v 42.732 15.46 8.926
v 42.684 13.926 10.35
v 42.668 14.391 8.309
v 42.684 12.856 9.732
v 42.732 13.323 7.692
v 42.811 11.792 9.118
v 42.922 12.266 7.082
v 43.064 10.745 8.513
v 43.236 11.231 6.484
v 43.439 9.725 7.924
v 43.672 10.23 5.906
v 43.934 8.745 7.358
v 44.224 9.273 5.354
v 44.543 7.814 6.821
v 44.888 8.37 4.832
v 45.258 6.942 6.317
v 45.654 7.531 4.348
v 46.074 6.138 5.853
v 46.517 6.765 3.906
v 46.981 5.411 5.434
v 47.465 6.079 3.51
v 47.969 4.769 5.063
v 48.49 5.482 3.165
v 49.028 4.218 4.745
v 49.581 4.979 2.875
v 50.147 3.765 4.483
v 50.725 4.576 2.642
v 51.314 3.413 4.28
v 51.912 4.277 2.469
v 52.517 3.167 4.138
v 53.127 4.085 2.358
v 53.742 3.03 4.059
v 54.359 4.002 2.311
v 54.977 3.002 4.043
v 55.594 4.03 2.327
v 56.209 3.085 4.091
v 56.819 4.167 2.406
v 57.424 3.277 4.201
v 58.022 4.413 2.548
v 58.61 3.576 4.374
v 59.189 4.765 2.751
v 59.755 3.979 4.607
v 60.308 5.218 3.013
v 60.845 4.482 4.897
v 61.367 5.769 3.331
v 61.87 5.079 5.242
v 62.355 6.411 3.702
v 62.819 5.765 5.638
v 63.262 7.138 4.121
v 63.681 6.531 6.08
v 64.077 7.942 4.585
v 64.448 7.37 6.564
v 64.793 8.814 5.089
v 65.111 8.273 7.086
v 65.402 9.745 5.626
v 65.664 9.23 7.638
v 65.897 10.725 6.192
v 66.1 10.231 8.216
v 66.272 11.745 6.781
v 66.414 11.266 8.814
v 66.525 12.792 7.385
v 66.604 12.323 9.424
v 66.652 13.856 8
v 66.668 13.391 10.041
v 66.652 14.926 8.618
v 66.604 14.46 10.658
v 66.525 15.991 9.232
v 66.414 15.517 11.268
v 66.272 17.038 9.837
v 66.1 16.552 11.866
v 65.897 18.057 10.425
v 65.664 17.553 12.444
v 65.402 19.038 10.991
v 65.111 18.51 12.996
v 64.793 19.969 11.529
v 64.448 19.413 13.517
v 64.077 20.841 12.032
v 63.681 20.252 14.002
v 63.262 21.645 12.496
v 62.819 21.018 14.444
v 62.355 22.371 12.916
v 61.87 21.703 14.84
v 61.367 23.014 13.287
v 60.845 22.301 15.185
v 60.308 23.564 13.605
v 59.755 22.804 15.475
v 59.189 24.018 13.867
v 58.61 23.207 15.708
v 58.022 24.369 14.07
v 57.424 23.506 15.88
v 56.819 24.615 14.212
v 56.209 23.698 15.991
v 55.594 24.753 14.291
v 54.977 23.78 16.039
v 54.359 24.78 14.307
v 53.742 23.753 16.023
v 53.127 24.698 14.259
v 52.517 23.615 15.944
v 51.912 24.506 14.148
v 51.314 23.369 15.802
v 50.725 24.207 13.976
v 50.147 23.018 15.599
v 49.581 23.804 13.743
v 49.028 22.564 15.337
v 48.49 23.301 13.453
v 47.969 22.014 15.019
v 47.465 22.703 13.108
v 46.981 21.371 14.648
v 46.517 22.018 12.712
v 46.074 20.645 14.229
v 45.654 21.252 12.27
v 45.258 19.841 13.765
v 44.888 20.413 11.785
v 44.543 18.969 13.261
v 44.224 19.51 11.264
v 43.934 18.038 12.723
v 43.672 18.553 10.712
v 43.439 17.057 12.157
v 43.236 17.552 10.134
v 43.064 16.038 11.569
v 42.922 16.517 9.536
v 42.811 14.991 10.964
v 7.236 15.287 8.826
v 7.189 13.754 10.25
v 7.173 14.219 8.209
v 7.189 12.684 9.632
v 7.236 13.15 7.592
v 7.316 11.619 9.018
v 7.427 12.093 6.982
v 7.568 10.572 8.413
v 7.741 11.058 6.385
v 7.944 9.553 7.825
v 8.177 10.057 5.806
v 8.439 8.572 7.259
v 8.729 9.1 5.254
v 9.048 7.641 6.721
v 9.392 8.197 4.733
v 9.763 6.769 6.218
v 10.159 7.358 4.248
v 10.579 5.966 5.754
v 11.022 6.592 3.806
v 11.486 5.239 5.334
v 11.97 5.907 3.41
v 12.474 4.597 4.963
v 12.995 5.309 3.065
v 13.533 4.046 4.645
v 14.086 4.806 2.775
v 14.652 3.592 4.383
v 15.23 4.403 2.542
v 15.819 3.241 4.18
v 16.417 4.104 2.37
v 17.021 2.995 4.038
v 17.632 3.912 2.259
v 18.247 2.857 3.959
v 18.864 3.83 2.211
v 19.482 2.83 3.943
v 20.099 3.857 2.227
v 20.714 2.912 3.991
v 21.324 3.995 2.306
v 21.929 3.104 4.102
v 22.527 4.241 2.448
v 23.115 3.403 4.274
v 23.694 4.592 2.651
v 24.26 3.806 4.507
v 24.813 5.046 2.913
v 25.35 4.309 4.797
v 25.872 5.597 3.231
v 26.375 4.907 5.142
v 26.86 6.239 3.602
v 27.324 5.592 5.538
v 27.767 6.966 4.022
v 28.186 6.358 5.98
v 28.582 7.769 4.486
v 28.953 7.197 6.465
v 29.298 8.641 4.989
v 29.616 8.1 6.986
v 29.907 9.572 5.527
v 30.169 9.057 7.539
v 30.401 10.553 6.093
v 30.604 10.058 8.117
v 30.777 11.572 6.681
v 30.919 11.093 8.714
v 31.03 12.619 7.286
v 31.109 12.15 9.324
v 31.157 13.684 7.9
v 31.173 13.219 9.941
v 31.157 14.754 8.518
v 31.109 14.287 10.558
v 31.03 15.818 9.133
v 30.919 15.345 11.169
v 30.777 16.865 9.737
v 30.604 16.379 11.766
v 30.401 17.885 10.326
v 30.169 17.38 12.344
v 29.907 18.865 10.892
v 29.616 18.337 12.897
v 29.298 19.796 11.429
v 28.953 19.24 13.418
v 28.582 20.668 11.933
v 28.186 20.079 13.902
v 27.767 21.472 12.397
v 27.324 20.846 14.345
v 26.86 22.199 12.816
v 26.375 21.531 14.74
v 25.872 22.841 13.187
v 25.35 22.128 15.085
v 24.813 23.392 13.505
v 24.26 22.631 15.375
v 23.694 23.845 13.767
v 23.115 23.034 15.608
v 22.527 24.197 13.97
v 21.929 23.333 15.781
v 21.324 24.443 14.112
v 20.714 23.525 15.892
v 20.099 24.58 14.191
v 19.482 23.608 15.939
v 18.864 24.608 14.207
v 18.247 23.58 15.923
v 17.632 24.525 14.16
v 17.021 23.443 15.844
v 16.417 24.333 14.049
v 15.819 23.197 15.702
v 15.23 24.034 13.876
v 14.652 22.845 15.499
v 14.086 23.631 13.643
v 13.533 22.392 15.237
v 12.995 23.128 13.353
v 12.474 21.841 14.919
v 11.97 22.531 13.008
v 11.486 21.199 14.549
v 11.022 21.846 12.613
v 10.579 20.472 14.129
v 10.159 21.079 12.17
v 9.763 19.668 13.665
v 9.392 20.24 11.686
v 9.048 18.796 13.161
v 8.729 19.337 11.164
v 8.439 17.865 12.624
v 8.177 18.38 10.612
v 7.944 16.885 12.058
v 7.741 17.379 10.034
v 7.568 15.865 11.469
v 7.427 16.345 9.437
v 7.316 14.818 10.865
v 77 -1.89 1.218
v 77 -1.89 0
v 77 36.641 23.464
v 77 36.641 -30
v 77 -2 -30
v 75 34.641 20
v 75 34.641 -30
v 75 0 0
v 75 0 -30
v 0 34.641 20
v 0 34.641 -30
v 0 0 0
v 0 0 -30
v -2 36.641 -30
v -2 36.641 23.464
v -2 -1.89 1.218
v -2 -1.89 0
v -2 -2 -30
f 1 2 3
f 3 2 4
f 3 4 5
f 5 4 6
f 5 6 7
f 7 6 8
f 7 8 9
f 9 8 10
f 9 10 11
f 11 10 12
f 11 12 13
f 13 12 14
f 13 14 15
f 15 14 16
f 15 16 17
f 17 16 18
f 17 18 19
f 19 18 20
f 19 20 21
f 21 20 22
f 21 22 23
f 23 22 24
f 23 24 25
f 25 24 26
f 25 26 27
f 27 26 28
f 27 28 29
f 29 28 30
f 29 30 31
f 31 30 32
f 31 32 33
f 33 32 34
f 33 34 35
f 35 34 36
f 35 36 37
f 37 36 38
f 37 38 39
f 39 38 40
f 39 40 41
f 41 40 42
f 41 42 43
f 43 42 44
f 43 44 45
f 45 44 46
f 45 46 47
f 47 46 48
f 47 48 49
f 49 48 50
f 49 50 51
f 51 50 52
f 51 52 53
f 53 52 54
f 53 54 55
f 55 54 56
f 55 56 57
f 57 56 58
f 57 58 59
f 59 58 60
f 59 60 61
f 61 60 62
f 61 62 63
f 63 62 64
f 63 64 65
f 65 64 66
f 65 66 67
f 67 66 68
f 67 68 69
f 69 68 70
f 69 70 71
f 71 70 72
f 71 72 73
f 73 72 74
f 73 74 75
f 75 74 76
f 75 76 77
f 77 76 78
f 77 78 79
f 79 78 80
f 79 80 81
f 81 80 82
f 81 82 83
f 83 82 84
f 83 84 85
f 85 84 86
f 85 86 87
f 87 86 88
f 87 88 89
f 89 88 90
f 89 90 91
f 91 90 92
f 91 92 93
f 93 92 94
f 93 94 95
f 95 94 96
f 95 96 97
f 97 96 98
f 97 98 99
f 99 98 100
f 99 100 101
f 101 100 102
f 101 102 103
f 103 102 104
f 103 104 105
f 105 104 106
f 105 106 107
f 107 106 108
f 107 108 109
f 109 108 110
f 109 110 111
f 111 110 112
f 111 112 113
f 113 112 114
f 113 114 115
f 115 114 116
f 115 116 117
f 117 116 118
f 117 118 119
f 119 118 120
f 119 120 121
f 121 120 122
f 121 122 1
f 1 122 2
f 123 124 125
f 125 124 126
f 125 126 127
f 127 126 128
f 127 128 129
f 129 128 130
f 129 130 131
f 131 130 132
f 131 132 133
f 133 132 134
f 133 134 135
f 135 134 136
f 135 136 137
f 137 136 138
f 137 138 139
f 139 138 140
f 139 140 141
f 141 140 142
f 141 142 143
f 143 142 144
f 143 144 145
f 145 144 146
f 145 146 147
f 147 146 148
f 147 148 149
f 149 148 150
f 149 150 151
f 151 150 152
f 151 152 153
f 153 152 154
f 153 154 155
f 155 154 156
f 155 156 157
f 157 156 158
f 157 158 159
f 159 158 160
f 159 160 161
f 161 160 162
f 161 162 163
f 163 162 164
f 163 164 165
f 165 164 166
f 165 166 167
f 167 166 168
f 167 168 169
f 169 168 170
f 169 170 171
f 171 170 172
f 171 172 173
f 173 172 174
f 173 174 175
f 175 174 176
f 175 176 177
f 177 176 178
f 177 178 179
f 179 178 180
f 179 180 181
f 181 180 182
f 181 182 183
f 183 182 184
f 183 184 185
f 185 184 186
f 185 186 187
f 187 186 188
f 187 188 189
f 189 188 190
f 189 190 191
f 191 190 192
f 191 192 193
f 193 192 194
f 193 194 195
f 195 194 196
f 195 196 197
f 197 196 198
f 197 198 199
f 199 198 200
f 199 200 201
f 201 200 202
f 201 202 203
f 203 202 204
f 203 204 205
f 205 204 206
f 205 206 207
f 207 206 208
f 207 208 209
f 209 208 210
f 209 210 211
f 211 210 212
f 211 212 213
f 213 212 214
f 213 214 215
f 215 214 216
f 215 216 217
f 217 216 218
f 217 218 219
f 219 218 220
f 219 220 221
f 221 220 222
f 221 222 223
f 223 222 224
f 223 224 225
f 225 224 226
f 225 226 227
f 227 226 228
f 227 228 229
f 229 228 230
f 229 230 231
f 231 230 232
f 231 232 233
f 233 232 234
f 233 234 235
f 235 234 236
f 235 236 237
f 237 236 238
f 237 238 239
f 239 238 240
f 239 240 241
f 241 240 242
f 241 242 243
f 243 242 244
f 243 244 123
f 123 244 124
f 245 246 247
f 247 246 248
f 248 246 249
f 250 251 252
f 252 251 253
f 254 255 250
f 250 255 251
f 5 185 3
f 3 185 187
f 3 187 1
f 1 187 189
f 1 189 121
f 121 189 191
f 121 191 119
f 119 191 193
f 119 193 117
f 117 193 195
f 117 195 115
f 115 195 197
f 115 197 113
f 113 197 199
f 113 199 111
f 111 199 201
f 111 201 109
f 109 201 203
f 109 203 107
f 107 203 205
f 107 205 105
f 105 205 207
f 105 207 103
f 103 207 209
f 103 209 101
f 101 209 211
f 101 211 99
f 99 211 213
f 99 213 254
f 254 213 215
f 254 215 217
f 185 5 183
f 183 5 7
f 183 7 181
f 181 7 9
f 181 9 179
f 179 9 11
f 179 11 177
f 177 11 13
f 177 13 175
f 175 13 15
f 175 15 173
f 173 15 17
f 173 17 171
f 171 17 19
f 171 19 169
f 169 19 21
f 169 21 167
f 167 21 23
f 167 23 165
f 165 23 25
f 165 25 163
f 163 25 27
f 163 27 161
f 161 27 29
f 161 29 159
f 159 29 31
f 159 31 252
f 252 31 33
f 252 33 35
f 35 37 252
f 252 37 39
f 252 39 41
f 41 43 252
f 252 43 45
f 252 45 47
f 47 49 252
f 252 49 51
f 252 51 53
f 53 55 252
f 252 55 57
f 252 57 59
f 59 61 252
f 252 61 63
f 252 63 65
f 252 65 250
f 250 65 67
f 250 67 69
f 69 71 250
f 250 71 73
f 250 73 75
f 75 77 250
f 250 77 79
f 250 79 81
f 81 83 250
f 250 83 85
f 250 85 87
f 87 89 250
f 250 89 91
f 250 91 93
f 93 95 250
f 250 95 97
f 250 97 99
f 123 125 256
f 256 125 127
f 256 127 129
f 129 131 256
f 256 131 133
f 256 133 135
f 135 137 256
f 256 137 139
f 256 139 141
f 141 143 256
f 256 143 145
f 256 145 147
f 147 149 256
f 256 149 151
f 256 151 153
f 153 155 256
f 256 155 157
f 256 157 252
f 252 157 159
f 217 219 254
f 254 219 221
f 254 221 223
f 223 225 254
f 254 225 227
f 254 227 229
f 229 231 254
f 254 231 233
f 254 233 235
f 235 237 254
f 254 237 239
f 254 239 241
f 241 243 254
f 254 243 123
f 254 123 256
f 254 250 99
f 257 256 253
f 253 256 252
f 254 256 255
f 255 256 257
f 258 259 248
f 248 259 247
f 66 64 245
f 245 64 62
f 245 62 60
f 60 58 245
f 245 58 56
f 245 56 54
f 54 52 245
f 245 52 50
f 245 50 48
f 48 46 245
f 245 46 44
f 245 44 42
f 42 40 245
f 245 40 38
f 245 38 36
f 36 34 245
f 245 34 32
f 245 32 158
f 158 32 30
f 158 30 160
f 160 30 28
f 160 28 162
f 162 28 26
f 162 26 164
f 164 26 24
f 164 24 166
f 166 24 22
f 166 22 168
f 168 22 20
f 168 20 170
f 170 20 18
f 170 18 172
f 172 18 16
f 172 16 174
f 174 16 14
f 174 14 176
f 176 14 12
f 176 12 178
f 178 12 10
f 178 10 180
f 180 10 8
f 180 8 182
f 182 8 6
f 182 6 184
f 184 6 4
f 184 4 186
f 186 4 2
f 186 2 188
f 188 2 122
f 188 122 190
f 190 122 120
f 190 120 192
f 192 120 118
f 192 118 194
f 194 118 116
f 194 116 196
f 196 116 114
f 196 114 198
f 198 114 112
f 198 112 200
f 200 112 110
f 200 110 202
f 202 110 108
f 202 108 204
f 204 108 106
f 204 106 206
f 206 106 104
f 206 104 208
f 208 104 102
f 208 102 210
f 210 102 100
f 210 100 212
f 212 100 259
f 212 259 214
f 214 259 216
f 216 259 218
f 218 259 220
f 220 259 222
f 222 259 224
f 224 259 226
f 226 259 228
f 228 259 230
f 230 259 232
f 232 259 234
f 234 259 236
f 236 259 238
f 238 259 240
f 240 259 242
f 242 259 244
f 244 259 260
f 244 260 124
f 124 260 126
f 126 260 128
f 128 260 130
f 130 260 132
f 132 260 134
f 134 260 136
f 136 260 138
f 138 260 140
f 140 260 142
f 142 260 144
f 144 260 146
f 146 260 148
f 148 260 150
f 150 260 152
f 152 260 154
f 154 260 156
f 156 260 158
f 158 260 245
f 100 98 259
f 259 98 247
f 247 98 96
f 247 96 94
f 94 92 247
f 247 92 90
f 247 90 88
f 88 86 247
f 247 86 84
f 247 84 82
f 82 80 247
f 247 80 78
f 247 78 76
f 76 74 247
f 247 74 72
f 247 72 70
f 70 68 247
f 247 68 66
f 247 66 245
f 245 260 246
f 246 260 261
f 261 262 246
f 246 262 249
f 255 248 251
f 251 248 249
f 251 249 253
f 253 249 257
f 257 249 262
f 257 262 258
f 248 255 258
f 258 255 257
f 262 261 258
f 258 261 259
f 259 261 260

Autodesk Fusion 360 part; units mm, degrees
sketch "Sketch1" plane through (0, 0, 0) normal (1, 0, 0) x (0, 0, -1)
  line L0 (0, 0) -> (-20, 34.641)
  line L1 (0, 0) -> (40, 0) construction
  line L2 (-20, 34.641) -> (30, 34.641)
  line L3 (30, 34.641) -> (30, 0)
  line L4 (30, 0) -> (0, 0)
  dimension "d1" = 120
  dimension "d2" = 40
  dimension "d3" = 50
extrude "Extrude1" add sketch "Sketch1" against normal blind 2
sketch "Sketch2" plane through (0, 0, 0) normal (1, 0, 0) x (0, 0, -1)
  line L0 (0, 0) -> (2, 0) construction
  line L1 (30, 0) -> (30, 34.641)
  line L2 (30, 34.641) -> (-20, 34.641)
  line L3 (-20, 34.641) -> (0, 0)
  line L4 (0, 0) -> (30, 0)
  line L5 (-20, 34.641) -> (-18, 34.641) construction
  line L6 (30, 0) -> (30, -2)
  line L7 (30, 34.641) -> (30, 36.641)
  line L8 (30, 36.641) -> (-23.4641, 36.641)
  line L9 (-1.7321, -1) -> (-21.7321, 33.641)
  line L10 (30, -2) -> (0, -1.8905)
  line L11 (-21.7321, 33.641) -> (-23.4641, 36.641)
  line L12 (0, -1.8905) -> (-1.2179, -1.8905)
  line L13 (-1.7321, -1) -> (-1.2179, -1.8905)
  line L14 (30, 0) -> (0, 0)
  line L15 (-20, 34.641) -> (30, 34.641)
  dimension "d7" = 2
  dimension "d10" = 2
  dimension "d12" = 2
  dimension "d13" = 2
extrude "Extrude2" add sketch "Sketch2" against normal blind 2 contours L2 L3 L4 L6 L7 L8 L9 L10 L11 L12 L13 L14 L15
extrude "Extrude3" add sketch "Sketch2" along normal blind 75 contours L2 L3 L4 L6 L7 L8 L9 L10 L11 L12 L13 L14 L15
sketch "Sketch3" plane through (75, 0, 0) normal (1, 0, 0) x (0, 0, -1)
  line L0 (30, 34.641) -> (30, 36.641)
  line L1 (30, 36.641) -> (-23.4641, 36.641)
  line L2 (-23.4641, 36.641) -> (-1.2179, -1.8905)
  line L3 (-1.2179, -1.8905) -> (0, -1.8905)
  line L4 (0, -1.8905) -> (30, -2)
  line L5 (30, -2) -> (30, 0)
  line L6 (-23.4641, 36.641) -> (30, 36.641)
  line L7 (30, -2) -> (-1.2179, -1.8905)
  line L8 (30, 0) -> (0, 0)
  line L9 (0, 0) -> (-20, 34.641)
  line L10 (-20, 34.641) -> (30, 34.641)
  line L11 (30, 34.641) -> (30, 36.641)
  line L12 (30, 36.641) -> (-23.4641, 36.641)
  line L13 (-23.4641, 36.641) -> (-1.2179, -1.8905)
  line L14 (-1.2179, -1.8905) -> (0, -1.8905)
  line L15 (0, -1.8905) -> (30, -2)
  line L16 (30, -2) -> (30, 0)
  line L17 (30, -2) -> (30, 36.641)
  line L18 (30, 36.641) -> (-23.4641, 36.641)
  line L19 (-23.4641, 36.641) -> (-1.2179, -1.8905)
  line L20 (-1.2179, -1.8905) -> (30, -2)
extrude "Extrude4" add sketch "Sketch3" along normal blind 2 contours L0 L1 L2 L3 L4 L5 L6 L8 L9 L10 L11 L12 L13 L14 L15 L16 L17 L18 L19 | L8 L9 L10 L17
hole "Hole1" at (19.1728, 13.2188, 9.9413) direction (0, 0.5, -0.866) diameter 24 depth 20 tip angle 118
hole "Hole2" at (54.6679, 13.3913, 10.0409) direction (0, 0.5, -0.866) diameter 24 depth 20 tip angle 118
